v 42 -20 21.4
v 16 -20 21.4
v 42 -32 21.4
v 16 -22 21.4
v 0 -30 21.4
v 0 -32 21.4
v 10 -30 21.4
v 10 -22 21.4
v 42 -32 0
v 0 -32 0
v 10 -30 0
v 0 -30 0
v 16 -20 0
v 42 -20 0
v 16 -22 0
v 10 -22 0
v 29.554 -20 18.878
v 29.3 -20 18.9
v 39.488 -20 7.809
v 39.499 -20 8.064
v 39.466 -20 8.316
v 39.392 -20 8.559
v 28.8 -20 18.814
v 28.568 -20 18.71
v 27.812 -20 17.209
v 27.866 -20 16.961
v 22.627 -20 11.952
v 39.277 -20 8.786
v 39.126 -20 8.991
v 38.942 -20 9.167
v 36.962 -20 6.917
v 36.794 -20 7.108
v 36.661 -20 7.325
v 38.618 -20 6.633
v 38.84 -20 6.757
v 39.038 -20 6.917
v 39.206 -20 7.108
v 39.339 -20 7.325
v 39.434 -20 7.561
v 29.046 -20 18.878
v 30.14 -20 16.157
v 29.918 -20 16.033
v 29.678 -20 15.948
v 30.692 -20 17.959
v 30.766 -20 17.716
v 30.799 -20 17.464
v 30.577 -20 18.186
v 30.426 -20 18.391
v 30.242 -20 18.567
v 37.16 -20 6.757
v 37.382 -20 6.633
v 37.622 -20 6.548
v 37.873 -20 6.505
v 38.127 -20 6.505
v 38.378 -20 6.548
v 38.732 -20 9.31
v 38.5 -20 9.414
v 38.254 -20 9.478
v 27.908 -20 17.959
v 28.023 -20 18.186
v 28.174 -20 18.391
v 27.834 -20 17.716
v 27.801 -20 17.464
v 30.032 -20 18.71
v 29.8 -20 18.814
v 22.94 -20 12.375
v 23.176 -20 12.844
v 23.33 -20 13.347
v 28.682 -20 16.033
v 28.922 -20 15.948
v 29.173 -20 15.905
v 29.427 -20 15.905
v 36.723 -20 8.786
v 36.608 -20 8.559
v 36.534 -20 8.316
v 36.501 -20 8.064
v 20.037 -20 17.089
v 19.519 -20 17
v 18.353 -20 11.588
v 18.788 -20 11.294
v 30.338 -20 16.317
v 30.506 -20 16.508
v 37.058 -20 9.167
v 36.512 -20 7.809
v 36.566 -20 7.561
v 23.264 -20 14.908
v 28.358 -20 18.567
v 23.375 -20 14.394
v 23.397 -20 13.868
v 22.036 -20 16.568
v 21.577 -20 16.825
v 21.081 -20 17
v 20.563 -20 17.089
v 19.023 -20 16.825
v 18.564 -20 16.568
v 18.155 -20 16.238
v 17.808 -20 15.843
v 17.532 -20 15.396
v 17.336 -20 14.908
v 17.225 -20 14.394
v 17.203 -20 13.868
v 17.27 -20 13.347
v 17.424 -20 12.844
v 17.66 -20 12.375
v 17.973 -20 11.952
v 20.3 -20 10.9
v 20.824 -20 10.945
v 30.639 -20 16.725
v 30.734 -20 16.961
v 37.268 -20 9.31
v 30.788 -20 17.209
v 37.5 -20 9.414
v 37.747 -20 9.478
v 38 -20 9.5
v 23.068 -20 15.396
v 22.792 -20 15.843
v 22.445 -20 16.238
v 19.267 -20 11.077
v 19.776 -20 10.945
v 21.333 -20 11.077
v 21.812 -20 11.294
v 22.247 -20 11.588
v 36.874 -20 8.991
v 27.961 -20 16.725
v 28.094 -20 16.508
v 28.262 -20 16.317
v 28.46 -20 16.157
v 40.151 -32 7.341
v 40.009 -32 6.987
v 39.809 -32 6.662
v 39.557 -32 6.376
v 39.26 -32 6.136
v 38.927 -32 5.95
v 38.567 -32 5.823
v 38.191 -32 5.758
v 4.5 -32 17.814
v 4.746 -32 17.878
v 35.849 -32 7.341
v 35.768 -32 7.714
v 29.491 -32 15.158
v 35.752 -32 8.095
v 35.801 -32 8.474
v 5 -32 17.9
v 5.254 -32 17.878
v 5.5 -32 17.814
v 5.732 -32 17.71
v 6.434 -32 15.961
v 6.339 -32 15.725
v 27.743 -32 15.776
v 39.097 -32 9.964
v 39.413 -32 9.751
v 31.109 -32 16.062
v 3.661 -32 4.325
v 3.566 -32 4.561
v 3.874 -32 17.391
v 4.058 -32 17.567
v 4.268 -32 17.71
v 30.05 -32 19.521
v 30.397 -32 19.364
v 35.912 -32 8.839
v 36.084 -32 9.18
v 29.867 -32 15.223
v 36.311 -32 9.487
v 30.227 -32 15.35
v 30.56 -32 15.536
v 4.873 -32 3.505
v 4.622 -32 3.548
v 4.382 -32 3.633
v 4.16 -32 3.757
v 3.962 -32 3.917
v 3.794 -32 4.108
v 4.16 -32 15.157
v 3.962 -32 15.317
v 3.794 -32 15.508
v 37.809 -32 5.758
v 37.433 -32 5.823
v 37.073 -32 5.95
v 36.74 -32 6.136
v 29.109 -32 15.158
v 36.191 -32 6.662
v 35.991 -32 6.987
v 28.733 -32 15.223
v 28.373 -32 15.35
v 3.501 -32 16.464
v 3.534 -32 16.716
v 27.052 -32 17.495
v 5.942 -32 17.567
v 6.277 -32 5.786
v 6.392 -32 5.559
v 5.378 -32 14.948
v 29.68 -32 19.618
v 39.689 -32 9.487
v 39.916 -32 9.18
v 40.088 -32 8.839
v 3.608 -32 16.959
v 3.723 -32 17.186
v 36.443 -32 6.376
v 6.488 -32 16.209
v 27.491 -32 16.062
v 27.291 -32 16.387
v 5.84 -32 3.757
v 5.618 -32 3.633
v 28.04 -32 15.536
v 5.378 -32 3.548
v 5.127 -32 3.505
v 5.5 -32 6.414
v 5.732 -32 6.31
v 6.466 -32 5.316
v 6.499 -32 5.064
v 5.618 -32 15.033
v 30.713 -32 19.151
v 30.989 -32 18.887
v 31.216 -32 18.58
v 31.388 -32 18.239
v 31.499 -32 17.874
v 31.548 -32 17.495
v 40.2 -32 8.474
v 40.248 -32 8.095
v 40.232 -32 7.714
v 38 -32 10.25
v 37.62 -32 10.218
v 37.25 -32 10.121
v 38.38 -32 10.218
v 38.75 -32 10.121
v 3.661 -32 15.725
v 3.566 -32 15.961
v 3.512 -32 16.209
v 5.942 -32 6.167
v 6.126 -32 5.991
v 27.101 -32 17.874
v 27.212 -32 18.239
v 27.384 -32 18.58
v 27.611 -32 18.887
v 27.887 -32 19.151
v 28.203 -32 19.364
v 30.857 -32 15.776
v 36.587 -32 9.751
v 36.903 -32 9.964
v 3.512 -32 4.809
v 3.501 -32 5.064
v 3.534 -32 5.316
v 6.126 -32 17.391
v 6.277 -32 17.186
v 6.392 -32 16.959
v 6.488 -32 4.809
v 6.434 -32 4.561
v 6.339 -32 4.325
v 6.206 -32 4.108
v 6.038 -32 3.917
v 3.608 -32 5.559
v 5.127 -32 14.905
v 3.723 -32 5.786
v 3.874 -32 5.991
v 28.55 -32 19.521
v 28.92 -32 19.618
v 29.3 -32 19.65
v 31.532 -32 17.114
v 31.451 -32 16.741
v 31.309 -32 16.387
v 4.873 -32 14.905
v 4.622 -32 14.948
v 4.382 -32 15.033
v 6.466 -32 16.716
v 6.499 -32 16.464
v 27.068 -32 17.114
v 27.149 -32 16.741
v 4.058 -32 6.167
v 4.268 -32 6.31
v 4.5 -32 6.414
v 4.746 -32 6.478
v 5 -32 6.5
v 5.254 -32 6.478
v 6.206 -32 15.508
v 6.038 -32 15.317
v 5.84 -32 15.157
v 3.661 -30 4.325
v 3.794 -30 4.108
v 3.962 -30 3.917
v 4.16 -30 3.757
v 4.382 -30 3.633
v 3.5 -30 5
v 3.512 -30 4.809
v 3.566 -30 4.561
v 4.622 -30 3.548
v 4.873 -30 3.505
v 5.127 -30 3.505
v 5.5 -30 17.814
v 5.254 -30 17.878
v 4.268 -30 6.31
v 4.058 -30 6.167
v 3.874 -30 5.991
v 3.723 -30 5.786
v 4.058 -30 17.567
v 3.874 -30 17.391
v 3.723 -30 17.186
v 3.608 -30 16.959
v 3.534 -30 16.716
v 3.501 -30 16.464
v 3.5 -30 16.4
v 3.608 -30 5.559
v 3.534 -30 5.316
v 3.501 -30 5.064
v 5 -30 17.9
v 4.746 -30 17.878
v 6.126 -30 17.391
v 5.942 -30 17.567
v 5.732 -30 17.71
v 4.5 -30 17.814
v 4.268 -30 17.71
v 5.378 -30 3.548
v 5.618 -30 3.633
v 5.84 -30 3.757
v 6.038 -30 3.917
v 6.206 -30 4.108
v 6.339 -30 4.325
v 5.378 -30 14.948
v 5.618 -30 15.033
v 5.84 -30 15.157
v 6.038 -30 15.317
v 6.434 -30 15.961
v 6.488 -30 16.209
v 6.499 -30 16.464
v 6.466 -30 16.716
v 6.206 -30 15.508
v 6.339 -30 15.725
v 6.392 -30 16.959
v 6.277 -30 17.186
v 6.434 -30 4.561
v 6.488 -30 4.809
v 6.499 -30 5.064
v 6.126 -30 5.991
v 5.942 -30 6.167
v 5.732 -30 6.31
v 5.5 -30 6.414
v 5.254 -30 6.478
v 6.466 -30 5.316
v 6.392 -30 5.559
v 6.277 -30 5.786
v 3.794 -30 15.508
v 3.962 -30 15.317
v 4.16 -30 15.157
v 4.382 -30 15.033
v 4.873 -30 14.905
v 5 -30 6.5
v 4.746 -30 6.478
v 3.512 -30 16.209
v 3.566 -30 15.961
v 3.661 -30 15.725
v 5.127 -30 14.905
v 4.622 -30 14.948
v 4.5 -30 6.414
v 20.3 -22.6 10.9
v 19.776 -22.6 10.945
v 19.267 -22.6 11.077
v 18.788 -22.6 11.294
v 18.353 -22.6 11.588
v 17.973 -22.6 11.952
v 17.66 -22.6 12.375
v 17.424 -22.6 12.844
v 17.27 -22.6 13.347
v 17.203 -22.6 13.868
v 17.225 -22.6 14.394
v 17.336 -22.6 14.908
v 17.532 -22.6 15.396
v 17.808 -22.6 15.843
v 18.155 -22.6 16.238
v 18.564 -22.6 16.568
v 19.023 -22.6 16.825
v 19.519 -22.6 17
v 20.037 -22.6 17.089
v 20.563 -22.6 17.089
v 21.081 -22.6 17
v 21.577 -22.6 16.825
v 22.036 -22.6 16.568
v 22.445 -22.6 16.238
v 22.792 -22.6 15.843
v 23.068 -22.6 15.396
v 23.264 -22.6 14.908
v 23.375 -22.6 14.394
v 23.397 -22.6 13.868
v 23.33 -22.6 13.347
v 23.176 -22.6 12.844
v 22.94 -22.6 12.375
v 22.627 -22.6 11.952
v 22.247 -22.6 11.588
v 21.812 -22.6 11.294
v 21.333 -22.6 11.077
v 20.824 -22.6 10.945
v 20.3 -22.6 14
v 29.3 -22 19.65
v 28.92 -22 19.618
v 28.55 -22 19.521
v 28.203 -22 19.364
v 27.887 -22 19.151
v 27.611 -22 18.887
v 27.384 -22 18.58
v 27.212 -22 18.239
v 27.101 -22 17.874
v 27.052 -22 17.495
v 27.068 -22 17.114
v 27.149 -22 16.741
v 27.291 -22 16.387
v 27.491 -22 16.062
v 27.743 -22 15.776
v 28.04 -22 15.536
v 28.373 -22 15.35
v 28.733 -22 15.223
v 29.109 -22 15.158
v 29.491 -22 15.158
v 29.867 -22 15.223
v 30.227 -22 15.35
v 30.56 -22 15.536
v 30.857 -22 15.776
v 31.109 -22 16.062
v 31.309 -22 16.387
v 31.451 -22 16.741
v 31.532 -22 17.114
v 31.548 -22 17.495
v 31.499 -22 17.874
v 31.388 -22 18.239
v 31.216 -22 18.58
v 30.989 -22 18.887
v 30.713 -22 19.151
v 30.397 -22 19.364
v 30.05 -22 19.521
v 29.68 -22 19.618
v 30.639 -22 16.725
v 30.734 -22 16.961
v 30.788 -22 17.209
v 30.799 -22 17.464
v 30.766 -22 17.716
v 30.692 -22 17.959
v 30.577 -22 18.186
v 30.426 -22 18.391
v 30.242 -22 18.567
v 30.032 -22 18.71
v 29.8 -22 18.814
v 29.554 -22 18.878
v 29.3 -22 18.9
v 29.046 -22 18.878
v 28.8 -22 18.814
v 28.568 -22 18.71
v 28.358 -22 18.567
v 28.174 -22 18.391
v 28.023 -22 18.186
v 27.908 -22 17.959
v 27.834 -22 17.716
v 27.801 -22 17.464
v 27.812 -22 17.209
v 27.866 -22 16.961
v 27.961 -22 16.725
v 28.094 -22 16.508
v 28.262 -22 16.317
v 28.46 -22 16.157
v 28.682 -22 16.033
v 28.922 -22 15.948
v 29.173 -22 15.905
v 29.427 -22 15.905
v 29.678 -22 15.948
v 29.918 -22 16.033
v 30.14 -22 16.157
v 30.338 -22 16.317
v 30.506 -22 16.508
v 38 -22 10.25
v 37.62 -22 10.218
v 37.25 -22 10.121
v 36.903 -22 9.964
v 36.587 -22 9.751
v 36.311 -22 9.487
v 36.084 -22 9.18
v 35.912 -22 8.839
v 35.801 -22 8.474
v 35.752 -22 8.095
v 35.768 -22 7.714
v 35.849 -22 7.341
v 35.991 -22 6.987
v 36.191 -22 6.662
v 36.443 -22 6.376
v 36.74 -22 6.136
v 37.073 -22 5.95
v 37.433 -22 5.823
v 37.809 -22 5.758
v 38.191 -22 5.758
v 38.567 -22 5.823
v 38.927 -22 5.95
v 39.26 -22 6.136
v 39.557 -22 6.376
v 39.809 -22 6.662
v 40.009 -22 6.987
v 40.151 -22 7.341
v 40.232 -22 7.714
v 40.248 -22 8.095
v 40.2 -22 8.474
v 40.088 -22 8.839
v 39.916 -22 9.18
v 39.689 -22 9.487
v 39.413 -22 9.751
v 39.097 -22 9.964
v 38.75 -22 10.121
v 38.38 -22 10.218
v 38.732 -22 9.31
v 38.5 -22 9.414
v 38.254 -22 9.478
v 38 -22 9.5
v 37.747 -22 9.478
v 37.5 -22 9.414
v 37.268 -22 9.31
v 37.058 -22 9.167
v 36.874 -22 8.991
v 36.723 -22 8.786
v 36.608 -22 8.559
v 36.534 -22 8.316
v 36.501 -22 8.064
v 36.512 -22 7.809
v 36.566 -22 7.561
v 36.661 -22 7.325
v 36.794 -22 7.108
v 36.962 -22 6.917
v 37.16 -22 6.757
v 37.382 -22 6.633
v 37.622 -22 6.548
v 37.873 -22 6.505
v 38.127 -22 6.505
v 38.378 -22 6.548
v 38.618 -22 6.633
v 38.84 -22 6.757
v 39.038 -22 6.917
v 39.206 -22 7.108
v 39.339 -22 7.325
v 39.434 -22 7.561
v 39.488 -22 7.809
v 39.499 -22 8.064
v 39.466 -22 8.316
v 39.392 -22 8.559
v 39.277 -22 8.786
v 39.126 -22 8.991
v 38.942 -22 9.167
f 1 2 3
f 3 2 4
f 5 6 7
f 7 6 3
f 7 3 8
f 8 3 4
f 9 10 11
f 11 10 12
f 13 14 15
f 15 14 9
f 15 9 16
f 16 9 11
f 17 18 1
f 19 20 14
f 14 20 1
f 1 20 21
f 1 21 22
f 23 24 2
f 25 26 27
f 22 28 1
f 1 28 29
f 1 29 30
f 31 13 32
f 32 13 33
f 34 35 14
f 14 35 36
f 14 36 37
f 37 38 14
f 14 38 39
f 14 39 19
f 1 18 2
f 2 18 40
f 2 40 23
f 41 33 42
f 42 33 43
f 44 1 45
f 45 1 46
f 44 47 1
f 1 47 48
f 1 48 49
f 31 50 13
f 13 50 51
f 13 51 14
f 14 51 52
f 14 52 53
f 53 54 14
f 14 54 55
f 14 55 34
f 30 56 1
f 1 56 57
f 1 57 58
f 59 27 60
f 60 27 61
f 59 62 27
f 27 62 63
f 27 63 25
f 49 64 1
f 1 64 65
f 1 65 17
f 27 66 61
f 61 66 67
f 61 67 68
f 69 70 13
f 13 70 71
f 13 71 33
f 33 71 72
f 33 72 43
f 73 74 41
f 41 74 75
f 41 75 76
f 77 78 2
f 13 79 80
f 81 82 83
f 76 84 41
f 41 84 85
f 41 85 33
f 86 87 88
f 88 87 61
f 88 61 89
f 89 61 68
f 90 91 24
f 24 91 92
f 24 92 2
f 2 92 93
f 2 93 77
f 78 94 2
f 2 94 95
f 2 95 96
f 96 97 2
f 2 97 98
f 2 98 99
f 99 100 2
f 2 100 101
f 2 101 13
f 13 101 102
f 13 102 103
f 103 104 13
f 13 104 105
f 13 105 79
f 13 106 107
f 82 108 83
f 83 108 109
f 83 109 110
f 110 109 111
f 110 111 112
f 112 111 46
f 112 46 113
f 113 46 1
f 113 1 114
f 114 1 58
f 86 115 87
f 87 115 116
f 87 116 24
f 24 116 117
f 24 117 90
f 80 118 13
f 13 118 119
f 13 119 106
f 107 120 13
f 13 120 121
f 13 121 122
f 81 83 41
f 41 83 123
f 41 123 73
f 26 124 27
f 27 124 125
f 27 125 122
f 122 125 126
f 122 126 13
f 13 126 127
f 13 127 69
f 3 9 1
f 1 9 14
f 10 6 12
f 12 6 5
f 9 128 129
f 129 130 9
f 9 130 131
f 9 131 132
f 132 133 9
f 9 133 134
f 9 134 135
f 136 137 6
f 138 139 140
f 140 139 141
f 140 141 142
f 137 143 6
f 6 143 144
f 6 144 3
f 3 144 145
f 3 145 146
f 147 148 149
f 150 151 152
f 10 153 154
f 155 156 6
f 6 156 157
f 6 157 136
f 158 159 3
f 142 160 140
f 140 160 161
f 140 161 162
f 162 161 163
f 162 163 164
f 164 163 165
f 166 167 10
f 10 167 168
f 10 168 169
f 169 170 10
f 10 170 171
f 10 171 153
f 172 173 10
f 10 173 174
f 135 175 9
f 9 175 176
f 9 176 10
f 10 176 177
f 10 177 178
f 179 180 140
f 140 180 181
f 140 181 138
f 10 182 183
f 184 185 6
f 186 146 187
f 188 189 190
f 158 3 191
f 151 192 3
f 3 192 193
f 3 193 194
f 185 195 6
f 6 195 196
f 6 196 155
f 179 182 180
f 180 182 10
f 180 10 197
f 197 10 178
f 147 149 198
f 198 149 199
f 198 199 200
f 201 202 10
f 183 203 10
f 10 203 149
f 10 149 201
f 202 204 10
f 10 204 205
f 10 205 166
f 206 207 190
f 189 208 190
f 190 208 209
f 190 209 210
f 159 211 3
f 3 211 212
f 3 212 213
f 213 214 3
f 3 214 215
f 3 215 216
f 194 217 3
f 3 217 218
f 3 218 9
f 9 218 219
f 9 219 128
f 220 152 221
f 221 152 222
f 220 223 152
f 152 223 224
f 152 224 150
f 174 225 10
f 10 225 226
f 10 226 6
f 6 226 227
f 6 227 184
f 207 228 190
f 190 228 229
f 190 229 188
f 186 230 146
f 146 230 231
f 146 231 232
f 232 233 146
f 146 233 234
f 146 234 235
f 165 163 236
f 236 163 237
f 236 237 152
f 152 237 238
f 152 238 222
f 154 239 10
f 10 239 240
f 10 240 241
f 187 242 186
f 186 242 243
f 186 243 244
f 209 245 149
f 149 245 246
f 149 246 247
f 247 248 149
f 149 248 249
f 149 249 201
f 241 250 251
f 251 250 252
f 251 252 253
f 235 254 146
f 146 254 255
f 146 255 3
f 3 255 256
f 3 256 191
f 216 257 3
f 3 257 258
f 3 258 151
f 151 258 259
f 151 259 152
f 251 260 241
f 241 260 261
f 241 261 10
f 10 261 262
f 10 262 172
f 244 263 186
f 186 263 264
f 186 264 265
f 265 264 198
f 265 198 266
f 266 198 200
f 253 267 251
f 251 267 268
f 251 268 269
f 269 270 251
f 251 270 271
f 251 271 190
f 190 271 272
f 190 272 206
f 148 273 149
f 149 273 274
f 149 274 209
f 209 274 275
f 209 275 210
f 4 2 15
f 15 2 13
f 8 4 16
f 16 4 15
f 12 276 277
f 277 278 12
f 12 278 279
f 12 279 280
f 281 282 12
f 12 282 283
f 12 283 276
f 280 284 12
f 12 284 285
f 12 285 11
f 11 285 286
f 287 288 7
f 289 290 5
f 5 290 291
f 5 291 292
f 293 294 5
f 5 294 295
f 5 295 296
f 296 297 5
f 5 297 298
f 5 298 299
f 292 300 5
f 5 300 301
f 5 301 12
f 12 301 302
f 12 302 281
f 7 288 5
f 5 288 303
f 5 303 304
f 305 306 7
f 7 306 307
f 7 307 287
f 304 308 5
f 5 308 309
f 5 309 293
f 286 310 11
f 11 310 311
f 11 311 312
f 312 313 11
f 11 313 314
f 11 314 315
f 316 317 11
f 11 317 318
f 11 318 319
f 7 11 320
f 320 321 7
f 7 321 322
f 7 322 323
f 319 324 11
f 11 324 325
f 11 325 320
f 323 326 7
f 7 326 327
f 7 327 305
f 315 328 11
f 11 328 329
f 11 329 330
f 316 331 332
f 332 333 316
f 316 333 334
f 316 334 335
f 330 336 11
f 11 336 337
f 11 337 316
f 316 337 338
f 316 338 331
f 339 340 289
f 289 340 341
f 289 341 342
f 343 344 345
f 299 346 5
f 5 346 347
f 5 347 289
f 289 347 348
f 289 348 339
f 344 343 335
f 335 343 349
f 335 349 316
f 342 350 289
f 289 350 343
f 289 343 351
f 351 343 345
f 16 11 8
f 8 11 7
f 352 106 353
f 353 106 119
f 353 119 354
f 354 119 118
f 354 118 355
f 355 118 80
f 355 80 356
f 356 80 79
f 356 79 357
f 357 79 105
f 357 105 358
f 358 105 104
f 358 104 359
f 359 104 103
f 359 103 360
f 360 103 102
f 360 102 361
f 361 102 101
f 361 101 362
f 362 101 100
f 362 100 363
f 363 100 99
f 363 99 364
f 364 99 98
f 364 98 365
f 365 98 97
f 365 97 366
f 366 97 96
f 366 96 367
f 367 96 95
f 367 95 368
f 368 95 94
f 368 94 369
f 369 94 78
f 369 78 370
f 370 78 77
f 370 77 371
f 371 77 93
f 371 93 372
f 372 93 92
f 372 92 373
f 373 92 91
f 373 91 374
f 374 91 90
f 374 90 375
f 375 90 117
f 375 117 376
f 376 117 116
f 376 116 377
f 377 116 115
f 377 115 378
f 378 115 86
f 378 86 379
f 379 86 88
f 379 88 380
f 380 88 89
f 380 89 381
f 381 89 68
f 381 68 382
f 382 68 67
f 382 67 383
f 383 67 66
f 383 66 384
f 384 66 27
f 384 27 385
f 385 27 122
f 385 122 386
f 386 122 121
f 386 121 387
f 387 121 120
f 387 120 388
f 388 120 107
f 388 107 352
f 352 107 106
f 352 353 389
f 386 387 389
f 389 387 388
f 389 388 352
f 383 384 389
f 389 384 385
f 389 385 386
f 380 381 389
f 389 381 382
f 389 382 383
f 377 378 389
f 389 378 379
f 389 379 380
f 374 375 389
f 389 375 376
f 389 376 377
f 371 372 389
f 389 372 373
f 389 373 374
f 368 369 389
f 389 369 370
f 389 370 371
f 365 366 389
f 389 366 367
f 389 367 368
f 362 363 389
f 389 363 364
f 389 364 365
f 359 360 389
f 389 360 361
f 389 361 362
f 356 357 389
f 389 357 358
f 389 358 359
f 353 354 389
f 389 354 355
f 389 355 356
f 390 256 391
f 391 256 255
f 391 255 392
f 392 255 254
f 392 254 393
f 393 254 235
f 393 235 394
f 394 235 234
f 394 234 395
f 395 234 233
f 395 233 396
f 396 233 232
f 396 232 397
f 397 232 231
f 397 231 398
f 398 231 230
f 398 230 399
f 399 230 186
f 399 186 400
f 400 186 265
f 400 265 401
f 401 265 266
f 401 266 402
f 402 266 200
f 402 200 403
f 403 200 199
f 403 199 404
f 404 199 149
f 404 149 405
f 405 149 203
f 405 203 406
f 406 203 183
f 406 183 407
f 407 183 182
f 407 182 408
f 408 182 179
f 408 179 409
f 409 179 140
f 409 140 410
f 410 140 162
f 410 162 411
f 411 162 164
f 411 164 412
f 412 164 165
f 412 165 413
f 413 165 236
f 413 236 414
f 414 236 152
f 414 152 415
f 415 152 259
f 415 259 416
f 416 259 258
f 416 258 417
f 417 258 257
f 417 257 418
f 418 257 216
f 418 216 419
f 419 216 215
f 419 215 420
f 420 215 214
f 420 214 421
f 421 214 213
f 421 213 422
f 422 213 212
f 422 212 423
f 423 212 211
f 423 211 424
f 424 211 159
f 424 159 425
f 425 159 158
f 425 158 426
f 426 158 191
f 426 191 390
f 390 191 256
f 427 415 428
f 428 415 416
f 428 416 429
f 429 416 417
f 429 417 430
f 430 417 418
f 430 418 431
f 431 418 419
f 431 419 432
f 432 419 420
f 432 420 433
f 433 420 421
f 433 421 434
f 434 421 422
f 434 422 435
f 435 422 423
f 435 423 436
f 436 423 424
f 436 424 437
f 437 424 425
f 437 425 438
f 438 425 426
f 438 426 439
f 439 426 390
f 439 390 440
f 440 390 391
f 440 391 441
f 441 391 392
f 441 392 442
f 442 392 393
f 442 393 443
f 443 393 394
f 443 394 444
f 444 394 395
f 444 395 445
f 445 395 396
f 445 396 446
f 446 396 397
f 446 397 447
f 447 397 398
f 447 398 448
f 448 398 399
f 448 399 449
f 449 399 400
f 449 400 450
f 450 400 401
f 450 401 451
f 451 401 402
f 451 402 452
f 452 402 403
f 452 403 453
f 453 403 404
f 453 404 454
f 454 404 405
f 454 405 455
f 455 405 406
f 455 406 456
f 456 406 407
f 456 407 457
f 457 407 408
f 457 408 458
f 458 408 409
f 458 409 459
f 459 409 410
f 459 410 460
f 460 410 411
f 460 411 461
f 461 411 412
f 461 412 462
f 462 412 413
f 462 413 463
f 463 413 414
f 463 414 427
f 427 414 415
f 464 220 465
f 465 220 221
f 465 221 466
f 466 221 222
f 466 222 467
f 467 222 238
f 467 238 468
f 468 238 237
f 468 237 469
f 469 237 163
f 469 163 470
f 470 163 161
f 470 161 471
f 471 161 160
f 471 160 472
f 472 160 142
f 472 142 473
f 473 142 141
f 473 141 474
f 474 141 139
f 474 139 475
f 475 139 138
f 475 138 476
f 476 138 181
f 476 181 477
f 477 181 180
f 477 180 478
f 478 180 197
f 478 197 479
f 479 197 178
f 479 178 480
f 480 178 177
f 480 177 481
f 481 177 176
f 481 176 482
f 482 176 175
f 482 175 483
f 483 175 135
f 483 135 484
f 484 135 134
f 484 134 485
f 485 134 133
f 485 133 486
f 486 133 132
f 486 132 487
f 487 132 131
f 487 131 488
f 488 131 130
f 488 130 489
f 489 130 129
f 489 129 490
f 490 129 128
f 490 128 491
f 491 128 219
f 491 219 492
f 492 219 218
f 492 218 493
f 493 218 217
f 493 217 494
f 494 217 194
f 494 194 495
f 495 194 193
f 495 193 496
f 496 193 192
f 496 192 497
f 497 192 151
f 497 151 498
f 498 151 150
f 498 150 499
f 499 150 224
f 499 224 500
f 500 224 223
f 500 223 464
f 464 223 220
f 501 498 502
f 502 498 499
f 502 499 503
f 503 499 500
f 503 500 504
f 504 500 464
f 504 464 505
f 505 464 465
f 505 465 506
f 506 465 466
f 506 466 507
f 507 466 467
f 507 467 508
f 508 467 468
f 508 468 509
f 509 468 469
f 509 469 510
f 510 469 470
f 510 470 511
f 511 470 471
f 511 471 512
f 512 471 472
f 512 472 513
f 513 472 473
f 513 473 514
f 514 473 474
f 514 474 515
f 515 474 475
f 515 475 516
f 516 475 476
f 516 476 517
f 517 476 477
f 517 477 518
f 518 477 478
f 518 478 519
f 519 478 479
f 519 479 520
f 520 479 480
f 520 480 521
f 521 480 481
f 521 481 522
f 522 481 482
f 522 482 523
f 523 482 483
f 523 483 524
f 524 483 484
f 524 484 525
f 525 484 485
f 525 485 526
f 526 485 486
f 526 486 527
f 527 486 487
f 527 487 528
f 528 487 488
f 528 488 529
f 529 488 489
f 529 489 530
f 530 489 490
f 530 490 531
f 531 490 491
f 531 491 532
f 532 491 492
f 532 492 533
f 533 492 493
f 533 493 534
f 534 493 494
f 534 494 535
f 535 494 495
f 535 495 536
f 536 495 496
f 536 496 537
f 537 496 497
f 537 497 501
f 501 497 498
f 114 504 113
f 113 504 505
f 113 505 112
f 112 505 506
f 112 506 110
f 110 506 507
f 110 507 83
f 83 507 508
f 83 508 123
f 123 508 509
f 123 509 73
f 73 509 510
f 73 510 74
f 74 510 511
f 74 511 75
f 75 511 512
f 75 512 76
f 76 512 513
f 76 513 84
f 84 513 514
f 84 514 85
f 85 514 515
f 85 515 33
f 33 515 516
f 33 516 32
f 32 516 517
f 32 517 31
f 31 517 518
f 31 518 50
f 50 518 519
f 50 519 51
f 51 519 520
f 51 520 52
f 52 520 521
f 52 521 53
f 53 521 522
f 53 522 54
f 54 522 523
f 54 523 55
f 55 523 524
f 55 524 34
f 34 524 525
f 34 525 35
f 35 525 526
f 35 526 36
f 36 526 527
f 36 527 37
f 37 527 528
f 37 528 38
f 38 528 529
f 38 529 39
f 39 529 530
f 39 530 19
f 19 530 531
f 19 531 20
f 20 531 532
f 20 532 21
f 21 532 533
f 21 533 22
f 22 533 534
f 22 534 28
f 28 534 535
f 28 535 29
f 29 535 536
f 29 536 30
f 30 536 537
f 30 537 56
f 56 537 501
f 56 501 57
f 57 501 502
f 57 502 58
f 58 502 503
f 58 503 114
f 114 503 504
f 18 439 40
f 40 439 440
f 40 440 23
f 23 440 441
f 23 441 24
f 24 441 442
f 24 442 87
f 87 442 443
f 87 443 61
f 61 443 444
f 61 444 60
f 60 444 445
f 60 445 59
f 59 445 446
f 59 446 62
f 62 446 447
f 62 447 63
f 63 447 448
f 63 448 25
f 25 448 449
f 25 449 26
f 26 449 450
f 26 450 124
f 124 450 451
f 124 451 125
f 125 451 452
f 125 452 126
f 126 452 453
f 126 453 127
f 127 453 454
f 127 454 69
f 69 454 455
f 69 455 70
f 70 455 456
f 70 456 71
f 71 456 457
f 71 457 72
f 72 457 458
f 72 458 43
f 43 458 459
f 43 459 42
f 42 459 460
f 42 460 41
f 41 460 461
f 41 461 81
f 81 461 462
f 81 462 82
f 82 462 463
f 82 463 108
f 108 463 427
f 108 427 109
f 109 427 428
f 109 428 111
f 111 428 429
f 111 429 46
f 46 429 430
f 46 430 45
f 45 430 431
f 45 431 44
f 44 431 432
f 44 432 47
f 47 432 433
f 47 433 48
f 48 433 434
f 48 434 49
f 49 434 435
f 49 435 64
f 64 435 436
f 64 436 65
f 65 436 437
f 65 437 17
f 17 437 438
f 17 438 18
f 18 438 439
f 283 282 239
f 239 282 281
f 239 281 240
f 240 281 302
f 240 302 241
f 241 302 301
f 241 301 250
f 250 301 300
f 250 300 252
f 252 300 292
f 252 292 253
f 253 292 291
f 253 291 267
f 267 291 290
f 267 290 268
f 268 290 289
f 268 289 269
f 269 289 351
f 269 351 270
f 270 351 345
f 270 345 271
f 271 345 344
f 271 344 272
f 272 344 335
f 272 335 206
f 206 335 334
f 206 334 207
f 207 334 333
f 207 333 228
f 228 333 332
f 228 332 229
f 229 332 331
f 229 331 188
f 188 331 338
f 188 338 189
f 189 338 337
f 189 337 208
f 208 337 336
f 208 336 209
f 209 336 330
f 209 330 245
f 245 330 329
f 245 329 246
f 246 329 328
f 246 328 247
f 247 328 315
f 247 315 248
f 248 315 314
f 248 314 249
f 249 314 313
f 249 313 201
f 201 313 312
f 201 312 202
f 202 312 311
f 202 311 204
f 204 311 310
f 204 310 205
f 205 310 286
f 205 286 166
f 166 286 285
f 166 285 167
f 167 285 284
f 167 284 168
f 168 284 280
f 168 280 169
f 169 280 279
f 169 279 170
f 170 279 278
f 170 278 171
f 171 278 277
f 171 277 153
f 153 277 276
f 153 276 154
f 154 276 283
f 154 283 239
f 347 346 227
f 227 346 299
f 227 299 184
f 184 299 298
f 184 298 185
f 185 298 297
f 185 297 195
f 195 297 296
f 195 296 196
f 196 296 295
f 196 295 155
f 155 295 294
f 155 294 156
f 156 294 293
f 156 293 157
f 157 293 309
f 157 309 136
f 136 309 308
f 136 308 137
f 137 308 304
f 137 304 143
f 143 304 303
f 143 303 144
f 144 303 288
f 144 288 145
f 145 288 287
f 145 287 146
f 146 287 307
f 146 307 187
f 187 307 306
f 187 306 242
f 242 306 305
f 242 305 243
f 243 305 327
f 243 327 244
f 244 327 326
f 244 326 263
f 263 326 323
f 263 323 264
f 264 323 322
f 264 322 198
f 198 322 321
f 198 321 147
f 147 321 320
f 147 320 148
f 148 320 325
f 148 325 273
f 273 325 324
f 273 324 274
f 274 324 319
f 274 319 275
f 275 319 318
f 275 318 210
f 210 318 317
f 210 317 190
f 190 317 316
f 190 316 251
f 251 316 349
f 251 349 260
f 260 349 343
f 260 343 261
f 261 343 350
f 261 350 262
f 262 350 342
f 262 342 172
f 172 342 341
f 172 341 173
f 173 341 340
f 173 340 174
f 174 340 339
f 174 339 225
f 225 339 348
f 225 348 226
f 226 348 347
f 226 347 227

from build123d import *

# Parameters (mm, degrees)
SKETCH_1_W          = 42
SKETCH_1_H          = 21.4
EXTRUDE_1_DEPTH     = 12
SKETCH_2_W          = 6
SKETCH_2_H          = 2
CUT_EXTRUDE_1_DEPTH = 49.641134855
SKETCH_3_R          = 3.1
CUT_EXTRUDE_2_DEPTH = 2.6
SKETCH_4_R          = 2.25
CUT_EXTRUDE_3_DEPTH = 10
SKETCH_4_3_R        = 1.5
CUT_EXTRUDE_4_DEPTH = 49.641134855
SKETCH_5_W          = 88.870895105
SKETCH_5_H          = 42.258480341
CUT_EXTRUDE_5_DEPTH = 53.01884274


with BuildPart() as part:
    # 草图1 → 凸台-拉伸1 (new body)
    with BuildSketch(Plane(origin=(0, 0, 0), x_dir=(1, 0, 0), z_dir=(0, 1, 0))):
        with Locations((21, -10.7)):
            Rectangle(SKETCH_1_W, SKETCH_1_H)
    extrude(amount=EXTRUDE_1_DEPTH)

    # 草图2 → 切除-拉伸1 (cut, through all)
    with BuildSketch(Plane(origin=(0, 0, 0), x_dir=(-1, 0, 0), z_dir=(0, 0, -1))):
        Polygon((-10, 0), (0, 0), (0, 10), (-10, 10), (-10, 2), align=None)
        with Locations((-13, 1)):
            Rectangle(SKETCH_2_W, SKETCH_2_H)
    extrude(amount=-CUT_EXTRUDE_1_DEPTH, mode=Mode.SUBTRACT)

    # 草图3 → 切除-拉伸2 (cut)
    with BuildSketch(Plane.XZ):
        with Locations(Location((20.3, 14, 0), (0, 0, 270))):
            Circle(SKETCH_3_R)
    extrude(amount=-CUT_EXTRUDE_2_DEPTH, mode=Mode.SUBTRACT)

    # 草图4 → 切除-拉伸3 (cut)
    with BuildSketch(Plane(origin=(0, 12, 0), x_dir=(1, 0, 0), z_dir=(0, 1, 0))):
        with Locations(Location((29.3, -17.4, 0), (0, 0, 270))):
            Circle(SKETCH_4_R)
        with Locations(Location((38, -8, 0), (0, 0, 270))):
            Circle(SKETCH_4_R)
    extrude(amount=-CUT_EXTRUDE_3_DEPTH, mode=Mode.SUBTRACT)

    # 草图4<3> → 切除-拉伸4 (cut, through all)
    with BuildSketch(Plane(origin=(0, 12, 0), x_dir=(1, 0, 0), z_dir=(0, 1, 0))):
        with Locations(Location((5, -5, 0), (0, 0, 270))):
            Circle(SKETCH_4_3_R)
        with Locations(Location((5, -16.4, 0), (0, 0, 270))):
            Circle(SKETCH_4_3_R)
        with Locations(Location((38, -8, 0), (0, 0, 270))):
            Circle(SKETCH_4_3_R)
        with Locations(Location((29.3, -17.4, 0), (0, 0, 270))):
            Circle(SKETCH_4_3_R)
    extrude(amount=-CUT_EXTRUDE_4_DEPTH, mode=Mode.SUBTRACT)


with BuildPart() as body_2:
    # 镜向1: mirrored copy
    add(part.part.mirror(Plane.ZX.offset(-10)))


with BuildPart() as part_1:
    add(part.part)

    # 草图5 → 切除-拉伸5 (cut, through all)
    with BuildSketch(Plane(origin=(0, -10, 0), x_dir=(1, 0, 0), z_dir=(0, 1, 0))):
        with Locations((22.816673382, -12.28482211)):
            Rectangle(SKETCH_5_W, SKETCH_5_H)
    extrude(amount=CUT_EXTRUDE_5_DEPTH, mode=Mode.SUBTRACT)


solid = body_2.part
